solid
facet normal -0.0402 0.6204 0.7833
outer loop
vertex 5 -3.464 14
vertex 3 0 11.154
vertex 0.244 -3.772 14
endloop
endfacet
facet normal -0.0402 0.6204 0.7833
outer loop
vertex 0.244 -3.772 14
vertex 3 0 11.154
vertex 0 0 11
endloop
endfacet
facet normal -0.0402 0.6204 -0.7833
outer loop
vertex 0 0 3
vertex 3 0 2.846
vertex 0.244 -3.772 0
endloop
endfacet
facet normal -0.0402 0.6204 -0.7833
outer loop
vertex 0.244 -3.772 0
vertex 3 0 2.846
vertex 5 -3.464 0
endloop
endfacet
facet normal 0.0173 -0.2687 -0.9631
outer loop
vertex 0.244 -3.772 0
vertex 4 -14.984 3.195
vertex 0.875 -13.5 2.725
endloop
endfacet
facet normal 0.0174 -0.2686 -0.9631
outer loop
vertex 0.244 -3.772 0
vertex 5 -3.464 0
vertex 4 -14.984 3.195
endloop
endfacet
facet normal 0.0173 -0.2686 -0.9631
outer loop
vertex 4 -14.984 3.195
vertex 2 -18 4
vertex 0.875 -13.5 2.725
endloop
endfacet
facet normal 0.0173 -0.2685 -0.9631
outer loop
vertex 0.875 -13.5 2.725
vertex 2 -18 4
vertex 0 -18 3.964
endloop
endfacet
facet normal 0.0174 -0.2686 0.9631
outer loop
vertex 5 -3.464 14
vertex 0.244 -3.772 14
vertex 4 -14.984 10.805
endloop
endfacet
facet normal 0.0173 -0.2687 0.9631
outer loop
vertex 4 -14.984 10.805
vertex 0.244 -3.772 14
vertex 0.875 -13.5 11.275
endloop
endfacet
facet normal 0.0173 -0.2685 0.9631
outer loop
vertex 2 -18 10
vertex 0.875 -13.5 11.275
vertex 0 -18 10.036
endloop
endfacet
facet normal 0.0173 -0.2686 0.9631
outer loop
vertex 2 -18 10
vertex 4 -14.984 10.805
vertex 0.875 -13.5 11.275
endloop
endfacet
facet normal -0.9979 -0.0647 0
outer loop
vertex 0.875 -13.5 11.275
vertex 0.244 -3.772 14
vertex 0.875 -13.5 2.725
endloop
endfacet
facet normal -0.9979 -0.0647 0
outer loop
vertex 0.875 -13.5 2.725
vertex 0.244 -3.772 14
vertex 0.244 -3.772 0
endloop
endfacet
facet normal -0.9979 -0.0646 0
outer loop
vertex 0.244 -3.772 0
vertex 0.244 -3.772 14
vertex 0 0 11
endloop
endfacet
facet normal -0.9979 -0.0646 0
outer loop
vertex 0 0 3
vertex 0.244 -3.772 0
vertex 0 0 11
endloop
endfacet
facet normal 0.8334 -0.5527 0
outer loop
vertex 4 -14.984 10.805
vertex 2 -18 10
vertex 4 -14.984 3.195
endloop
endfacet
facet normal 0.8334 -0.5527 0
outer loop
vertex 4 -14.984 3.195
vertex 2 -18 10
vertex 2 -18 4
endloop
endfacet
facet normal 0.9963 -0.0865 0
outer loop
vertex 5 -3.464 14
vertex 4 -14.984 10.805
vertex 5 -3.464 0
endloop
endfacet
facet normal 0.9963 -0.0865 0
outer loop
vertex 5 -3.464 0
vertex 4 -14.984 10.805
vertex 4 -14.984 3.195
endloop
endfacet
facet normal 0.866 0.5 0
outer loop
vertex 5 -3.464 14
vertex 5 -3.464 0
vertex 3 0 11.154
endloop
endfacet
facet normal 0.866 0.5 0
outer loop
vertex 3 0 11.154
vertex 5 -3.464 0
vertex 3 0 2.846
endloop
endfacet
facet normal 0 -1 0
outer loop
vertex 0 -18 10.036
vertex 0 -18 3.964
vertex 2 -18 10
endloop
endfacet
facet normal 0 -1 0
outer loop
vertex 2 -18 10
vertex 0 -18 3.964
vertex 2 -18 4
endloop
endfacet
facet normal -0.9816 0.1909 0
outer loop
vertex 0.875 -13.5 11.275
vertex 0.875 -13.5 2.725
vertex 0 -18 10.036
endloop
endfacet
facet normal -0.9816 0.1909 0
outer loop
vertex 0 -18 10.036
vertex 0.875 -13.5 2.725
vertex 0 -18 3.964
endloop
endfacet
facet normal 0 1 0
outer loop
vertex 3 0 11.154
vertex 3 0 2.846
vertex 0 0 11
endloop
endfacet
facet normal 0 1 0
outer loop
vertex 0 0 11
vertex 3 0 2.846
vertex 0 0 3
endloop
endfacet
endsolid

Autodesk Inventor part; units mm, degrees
ref_plane "YZ Plane" through (0, 0, 0) normal (1, 0, 0) x (0, 1, 0)
ref_plane "XZ Plane" through (0, 0, 0) normal (0, 1, 0) x (-1, 0, 0)
ref_plane "XY Plane" through (0, 0, 0) normal (0, 0, 1) x (1, 0, 0)
sketch "Base" plane through (0, 0, 0) normal (0, 0, 1) x (1, 0, 0)
  line L0 (0, 0) -> (0, -18) construction
  line L1 (0, -18) -> (2, -18)
  line L2 (2, -18) -> (4, -14.9841)
  line L3 (5, -3.4641) -> (3, 0)
  line L4 (3, 0) -> (0, 0)
  line L5 (4, -14.9841) -> (5, -3.4641)
  line L6 (0, -18) -> (0.8747, -13.5)
  line L7 (0.8747, -13.5) -> (0, 0)
  dimension "d0" = 18
  dimension "d1" = 3
  dimension "d2" = 2
  dimension "d3" = 5
  dimension "d8" = 4
  dimension "d12" = 120
  dimension "d14" = 11.52
  dimension "d23" = 13.5
  dimension "d24" = 79
extrude "BaseFeature" add sketch "Base" along normal blind 14
sketch "TopProfile" plane through (0.8747, -13.5, 0) normal (-0.9979, -0.0647, 0) x (0, 0, 1)
  line L0 (0, 9.7482) -> (14, 9.7482) projected
  line L1 (3, 13.5283) -> (11, 13.5283)
  line L2 (11, 13.5283) -> (14, 9.7482)
  line L3 (14, 9.7482) -> (10, -4.5633)
  line L4 (10, -4.5633) -> (4, -4.5633)
  line L5 (4, -4.5633) -> (0, 9.7482)
  line L6 (0, 9.7482) -> (3, 13.5283)
  line L7 (0, 13.5283) -> (14, 13.5283) projected
  line L8 (0, -4.5633) -> (14, -4.5633) projected
  point P0 (7, 13.5283)
  point P1 (7, -4.5633)
  dimension "d27" = 8
  dimension "d28" = 6
extrude "TopProfileFeature" cut sketch "TopProfile" along normal through all both and the other way through all keep common part
equation "\"d14\" = 0.64 * d0"
equation "\"d23\" = 0.75 * d0"
properties part number "DistalPhalangeIndexMiddle"
